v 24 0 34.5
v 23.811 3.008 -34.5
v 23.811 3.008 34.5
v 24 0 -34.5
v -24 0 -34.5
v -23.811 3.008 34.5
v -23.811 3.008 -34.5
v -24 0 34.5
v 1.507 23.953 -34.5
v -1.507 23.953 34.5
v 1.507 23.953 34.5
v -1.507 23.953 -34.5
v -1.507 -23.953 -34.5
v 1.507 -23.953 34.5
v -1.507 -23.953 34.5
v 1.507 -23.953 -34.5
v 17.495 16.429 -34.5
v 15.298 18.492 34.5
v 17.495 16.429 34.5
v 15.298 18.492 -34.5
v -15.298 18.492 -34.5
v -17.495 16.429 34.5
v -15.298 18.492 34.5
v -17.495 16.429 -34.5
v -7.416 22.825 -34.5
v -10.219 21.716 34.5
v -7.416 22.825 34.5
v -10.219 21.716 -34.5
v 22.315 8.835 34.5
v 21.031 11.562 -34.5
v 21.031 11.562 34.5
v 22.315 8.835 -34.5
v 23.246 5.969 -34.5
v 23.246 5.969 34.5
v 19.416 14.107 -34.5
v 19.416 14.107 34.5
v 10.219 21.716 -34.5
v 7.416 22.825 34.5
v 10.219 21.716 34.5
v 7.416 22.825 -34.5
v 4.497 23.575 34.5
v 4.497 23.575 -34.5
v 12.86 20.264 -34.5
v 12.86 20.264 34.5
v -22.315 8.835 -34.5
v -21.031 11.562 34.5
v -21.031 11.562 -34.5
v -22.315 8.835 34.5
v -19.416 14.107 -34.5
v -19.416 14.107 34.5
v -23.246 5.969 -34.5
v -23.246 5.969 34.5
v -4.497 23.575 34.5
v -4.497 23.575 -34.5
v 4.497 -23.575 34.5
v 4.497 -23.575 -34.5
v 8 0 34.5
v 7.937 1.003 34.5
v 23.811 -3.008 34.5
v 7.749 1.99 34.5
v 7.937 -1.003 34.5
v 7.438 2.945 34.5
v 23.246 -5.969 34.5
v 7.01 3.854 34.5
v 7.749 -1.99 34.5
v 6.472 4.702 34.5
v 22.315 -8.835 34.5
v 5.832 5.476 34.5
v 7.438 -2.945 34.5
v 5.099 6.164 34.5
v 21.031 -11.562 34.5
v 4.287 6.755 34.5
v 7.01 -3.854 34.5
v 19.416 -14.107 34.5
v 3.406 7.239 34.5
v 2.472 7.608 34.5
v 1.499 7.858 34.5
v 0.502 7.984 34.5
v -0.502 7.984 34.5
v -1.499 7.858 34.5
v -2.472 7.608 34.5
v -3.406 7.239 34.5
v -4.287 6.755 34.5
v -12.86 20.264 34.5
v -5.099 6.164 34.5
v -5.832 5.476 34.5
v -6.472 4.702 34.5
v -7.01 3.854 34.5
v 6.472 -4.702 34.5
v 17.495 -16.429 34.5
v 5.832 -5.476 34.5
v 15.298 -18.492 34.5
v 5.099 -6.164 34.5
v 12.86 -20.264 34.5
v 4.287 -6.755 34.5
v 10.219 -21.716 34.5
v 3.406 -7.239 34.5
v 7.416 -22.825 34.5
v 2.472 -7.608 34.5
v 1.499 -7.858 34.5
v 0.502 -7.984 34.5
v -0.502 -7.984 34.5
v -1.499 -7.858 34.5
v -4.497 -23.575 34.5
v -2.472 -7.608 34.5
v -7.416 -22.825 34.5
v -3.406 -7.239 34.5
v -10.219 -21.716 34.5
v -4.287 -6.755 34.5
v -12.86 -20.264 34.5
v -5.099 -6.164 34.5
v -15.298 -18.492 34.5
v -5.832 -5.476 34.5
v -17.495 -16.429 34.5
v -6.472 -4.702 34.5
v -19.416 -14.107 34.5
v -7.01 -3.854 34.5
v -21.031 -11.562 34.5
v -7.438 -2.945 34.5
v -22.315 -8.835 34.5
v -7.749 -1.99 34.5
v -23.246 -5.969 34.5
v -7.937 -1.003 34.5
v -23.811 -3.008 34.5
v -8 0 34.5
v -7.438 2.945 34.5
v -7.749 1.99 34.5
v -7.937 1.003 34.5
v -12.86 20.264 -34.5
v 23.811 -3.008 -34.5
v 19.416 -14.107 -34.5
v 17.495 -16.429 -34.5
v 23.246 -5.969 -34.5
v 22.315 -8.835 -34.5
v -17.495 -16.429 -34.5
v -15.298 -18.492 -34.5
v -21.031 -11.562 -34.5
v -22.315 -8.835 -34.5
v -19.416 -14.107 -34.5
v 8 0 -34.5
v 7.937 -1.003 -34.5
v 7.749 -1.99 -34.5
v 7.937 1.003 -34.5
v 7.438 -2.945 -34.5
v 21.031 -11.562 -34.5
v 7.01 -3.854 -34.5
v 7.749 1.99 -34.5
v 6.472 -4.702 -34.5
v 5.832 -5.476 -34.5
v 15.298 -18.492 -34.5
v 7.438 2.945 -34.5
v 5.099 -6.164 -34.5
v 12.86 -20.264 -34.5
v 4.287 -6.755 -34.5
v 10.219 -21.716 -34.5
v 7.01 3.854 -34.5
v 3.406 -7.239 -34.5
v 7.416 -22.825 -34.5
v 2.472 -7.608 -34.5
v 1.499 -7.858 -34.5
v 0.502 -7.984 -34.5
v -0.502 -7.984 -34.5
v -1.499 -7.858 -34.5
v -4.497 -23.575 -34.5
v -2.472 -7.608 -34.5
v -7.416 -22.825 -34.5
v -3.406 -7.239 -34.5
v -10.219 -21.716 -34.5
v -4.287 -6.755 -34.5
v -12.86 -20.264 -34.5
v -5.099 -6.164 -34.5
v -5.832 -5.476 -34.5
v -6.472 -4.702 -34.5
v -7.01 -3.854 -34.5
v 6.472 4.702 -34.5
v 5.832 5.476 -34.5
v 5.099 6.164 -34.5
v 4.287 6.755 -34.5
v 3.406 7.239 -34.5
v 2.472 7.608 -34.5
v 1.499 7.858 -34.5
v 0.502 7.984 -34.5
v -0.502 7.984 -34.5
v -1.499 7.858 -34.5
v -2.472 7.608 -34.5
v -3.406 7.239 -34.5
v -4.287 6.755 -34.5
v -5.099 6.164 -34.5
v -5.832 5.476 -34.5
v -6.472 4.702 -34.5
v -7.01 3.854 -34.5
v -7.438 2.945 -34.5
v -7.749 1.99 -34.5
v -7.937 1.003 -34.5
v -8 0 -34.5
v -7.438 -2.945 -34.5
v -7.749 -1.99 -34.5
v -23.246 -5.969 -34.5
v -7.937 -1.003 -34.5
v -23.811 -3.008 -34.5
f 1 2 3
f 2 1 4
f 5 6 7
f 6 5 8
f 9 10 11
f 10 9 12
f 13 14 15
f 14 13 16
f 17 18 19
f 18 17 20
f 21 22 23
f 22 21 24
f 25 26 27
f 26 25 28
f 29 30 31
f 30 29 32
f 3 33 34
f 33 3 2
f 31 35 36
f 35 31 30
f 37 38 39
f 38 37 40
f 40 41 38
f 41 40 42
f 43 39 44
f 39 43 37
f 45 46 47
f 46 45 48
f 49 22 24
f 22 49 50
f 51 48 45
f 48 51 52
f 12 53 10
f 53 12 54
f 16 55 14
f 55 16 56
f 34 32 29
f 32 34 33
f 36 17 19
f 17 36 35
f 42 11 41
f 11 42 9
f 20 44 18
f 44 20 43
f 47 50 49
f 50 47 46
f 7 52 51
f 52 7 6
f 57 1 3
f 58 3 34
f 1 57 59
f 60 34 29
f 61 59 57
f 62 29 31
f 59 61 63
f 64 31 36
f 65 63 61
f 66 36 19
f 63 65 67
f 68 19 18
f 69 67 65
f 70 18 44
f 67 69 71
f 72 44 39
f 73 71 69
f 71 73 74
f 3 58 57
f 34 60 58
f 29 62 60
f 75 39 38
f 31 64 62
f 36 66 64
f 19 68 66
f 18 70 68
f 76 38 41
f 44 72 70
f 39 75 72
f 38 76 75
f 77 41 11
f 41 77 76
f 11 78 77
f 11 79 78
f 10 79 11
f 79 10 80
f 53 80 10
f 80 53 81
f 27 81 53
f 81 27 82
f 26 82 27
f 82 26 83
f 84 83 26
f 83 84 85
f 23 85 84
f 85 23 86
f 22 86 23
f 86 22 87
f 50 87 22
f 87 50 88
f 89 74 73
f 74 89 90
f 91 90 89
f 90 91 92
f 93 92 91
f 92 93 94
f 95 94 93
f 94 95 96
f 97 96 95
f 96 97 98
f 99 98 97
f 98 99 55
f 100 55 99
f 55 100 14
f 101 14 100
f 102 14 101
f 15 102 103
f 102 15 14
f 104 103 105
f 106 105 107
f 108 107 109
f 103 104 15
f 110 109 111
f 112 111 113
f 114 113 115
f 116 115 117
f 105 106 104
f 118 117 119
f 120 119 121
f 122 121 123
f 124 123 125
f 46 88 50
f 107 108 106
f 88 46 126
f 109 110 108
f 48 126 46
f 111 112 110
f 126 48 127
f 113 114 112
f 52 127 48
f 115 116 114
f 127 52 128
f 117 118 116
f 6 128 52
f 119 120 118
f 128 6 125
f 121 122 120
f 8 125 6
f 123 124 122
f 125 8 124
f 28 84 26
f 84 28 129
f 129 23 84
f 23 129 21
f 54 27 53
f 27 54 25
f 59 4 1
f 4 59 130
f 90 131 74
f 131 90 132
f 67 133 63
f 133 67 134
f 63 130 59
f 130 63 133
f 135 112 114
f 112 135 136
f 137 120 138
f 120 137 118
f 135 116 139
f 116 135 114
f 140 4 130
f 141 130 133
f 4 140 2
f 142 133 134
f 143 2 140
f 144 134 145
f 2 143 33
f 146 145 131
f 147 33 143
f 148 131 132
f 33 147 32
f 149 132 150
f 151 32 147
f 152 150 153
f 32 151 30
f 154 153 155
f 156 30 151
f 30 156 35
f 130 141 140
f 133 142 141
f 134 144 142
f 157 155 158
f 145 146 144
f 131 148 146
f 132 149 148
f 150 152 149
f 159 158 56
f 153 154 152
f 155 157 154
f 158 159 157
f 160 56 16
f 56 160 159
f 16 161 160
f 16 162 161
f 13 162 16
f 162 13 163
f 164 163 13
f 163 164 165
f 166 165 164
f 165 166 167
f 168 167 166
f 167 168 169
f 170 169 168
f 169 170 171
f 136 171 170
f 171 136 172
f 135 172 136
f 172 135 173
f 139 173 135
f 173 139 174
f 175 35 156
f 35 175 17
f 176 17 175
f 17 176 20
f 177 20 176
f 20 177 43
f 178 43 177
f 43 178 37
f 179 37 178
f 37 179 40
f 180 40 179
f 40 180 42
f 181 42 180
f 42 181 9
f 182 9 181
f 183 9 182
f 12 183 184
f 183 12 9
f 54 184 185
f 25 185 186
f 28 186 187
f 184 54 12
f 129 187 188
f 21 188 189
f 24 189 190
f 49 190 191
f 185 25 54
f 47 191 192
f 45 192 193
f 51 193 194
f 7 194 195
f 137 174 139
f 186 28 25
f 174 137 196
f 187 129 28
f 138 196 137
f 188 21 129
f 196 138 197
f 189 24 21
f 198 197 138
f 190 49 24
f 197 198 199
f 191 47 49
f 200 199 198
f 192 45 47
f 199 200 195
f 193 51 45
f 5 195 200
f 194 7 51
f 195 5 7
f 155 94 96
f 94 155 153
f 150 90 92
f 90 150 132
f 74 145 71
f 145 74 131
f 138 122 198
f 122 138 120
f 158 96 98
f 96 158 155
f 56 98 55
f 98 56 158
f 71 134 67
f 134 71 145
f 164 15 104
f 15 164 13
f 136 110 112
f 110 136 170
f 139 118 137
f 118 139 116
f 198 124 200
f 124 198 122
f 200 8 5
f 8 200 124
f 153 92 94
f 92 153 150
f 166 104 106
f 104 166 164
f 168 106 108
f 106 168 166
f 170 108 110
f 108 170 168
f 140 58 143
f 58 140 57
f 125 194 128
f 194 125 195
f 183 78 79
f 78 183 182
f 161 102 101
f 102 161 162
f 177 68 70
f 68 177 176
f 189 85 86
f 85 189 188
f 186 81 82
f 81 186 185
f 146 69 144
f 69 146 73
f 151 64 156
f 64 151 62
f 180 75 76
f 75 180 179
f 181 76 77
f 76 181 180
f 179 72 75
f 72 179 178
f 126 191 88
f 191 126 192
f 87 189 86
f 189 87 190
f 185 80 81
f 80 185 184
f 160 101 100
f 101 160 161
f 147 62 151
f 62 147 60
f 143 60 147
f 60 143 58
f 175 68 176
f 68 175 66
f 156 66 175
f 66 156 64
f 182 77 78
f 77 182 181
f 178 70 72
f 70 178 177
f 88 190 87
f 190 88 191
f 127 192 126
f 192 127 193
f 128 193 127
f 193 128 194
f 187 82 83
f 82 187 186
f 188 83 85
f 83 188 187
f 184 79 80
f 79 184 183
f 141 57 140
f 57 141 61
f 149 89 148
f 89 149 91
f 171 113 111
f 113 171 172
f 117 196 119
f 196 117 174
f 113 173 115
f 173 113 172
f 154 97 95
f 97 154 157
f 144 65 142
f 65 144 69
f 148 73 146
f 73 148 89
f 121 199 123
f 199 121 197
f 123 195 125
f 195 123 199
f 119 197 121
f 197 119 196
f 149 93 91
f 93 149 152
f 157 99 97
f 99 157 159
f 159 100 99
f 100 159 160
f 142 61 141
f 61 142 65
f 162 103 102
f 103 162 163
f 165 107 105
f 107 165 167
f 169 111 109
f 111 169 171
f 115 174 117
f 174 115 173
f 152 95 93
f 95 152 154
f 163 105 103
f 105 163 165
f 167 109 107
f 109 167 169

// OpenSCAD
$fn = 50;


difference() {
	union() {
		translate(v = [0, 0, -34.5000000000]) {
			cylinder(h = 69, r = 24.0000000000);
		}
	}
	union() {
		translate(v = [0, 0, -100.0000000000]) {
			cylinder(h = 200, r = 8);
		}
	}
}
